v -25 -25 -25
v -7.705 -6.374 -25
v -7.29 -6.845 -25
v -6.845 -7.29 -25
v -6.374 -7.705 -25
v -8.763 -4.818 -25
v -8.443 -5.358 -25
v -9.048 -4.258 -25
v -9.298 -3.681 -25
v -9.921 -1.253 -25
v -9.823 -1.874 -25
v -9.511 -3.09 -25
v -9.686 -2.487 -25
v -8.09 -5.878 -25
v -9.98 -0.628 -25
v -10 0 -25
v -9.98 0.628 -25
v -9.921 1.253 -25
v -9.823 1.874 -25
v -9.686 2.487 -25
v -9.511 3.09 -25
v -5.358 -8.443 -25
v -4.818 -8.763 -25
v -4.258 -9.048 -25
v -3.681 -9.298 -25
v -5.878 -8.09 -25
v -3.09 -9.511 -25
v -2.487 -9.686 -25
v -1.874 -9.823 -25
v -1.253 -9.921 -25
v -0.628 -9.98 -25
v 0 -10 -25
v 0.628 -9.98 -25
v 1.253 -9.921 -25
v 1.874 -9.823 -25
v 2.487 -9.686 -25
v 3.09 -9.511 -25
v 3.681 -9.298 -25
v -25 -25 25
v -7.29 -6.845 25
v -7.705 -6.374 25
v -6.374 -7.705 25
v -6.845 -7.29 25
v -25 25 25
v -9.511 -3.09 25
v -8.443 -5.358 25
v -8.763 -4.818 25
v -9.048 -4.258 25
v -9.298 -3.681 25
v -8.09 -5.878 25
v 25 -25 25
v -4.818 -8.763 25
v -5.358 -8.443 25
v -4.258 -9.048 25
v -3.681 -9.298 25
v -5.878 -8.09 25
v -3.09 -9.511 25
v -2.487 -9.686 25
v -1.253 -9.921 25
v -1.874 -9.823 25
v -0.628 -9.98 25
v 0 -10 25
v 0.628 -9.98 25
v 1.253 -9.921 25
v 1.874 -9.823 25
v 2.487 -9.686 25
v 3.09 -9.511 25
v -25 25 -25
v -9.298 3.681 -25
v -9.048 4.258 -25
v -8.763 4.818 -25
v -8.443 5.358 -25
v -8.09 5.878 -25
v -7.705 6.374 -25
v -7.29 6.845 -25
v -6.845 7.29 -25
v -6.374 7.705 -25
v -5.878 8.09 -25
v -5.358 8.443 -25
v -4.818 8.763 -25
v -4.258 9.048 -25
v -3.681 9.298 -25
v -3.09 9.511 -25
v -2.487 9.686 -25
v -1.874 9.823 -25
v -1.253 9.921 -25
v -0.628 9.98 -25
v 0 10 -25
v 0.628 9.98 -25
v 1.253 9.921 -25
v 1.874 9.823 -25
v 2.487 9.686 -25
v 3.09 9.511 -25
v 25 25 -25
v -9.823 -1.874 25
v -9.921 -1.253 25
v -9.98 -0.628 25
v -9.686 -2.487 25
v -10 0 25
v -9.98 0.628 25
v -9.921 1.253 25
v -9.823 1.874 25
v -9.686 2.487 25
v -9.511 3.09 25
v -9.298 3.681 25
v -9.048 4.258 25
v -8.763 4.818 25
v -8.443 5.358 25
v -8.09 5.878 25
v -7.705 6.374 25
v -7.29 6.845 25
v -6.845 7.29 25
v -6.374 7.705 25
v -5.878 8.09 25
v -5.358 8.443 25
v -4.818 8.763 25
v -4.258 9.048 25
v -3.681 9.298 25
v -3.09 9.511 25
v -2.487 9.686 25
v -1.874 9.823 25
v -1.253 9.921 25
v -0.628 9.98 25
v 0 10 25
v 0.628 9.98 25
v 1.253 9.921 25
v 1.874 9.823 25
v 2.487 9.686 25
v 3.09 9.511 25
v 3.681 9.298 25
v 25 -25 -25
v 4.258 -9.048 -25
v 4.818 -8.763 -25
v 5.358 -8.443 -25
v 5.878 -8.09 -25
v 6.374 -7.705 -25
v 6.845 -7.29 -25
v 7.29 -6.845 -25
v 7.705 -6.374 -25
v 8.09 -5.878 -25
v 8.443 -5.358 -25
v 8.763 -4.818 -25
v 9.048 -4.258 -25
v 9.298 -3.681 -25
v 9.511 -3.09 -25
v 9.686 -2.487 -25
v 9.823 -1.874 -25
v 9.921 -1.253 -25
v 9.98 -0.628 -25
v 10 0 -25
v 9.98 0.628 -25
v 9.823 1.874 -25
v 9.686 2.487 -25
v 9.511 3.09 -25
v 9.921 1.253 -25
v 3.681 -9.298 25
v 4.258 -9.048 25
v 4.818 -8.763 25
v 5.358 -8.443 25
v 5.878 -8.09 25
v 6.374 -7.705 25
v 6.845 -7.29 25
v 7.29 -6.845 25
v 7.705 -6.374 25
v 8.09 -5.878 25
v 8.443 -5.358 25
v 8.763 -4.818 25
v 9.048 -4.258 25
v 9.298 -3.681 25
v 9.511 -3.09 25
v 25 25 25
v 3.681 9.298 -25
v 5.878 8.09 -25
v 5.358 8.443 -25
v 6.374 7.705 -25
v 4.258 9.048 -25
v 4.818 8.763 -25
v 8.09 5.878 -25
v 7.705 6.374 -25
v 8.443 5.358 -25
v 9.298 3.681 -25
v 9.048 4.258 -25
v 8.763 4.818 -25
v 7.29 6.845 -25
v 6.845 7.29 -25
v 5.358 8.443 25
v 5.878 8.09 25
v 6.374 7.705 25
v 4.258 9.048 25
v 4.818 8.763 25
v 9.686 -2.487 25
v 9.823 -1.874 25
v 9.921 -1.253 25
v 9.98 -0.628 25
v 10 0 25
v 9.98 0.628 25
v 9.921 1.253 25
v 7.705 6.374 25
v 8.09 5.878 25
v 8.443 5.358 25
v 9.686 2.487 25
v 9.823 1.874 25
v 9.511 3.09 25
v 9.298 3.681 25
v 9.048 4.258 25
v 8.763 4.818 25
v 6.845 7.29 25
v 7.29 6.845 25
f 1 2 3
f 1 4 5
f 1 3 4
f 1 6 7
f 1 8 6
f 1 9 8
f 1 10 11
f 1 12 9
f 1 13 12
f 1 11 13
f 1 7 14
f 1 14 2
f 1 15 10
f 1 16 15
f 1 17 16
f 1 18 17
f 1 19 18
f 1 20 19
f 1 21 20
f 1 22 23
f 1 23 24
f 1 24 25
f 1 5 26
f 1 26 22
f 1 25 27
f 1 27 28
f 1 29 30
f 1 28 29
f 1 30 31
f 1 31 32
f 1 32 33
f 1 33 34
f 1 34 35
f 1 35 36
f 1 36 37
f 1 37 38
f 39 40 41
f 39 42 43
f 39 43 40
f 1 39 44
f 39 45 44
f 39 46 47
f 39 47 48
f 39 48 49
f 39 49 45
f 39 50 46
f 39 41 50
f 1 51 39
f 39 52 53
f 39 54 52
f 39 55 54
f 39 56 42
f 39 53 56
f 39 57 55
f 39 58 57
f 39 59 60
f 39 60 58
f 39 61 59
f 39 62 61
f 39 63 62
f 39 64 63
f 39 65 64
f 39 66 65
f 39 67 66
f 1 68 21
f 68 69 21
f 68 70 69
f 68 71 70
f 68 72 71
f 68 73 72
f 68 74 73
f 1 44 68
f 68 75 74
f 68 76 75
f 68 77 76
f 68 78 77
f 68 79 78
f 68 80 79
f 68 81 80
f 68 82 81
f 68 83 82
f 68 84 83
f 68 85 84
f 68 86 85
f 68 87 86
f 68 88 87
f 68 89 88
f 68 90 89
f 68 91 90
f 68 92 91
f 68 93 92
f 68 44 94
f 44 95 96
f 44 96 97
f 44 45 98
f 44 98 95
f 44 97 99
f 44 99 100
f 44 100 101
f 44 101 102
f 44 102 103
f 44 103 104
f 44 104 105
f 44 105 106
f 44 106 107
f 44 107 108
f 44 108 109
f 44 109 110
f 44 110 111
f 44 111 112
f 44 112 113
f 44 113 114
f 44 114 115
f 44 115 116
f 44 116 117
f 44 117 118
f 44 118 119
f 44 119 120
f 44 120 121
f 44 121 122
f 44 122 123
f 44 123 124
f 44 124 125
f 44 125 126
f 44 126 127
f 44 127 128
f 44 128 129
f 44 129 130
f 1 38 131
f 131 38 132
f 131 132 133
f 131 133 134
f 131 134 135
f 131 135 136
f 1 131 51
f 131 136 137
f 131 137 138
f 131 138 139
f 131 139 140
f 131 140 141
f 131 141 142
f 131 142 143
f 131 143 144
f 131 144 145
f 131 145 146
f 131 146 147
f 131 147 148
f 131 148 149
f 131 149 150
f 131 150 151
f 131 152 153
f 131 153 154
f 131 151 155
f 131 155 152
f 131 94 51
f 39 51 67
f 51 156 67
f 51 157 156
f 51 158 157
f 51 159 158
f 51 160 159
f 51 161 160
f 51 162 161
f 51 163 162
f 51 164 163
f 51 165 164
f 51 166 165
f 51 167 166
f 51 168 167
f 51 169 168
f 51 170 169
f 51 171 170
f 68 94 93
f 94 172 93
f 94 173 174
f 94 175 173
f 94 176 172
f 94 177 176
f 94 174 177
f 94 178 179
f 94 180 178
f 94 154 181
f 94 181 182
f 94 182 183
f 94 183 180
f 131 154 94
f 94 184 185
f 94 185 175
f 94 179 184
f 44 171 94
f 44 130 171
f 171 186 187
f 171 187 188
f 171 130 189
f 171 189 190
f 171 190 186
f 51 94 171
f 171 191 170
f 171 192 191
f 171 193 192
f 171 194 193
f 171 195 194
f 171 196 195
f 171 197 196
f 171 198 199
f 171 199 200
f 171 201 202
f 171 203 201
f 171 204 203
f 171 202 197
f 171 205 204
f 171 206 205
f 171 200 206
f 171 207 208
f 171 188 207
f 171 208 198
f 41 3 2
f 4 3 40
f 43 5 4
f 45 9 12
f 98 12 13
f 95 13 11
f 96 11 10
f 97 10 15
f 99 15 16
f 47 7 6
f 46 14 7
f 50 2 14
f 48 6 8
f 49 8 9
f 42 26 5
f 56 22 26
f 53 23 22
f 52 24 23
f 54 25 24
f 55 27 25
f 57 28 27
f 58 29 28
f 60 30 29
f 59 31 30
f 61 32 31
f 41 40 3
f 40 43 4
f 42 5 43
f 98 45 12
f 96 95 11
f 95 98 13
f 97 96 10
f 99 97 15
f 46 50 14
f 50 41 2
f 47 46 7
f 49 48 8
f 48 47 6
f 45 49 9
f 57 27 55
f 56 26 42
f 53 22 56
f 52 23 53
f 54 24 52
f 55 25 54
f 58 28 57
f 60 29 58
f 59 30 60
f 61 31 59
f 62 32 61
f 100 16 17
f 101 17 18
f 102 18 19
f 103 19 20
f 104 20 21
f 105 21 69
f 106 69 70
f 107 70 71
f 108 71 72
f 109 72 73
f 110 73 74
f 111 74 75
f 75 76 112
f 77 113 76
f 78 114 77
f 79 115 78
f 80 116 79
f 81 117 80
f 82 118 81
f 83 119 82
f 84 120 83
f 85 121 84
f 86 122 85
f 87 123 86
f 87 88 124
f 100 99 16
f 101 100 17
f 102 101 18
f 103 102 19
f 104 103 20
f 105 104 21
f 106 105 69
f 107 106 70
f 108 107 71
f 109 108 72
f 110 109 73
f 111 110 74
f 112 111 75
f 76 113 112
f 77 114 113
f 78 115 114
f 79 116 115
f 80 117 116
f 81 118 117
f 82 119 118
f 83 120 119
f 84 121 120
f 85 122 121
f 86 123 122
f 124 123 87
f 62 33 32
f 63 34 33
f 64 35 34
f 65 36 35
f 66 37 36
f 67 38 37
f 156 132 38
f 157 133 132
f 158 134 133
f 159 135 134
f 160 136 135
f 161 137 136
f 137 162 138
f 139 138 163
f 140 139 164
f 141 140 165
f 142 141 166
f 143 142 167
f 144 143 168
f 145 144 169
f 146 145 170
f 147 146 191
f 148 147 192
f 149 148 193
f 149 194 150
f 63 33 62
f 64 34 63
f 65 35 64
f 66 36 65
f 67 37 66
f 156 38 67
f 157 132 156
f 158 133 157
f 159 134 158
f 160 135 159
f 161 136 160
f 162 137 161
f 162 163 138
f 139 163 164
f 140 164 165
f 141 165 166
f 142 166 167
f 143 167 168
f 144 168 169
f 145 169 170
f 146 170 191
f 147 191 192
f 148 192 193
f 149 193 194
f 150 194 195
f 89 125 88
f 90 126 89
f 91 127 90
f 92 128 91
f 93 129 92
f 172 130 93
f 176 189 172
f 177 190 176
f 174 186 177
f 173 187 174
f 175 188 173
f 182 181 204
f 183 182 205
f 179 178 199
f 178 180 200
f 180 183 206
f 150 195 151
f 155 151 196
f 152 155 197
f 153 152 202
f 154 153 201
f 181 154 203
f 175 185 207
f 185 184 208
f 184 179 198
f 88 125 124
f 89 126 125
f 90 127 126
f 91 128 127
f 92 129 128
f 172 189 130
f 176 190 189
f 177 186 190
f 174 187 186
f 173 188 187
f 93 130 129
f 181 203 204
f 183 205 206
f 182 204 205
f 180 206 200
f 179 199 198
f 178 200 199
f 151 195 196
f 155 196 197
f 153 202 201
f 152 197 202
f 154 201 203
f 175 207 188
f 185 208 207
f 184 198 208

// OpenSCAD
$fn = 100;

difference() {
    // 50mm 角の立方体
    cube(50, center = true);
    
    // 直径 20mm の貫通穴 (z軸方向)
    // 貫通を確実にするため、高さを少し長く設定
    cylinder(h = 52, d = 20, center = true);
}
